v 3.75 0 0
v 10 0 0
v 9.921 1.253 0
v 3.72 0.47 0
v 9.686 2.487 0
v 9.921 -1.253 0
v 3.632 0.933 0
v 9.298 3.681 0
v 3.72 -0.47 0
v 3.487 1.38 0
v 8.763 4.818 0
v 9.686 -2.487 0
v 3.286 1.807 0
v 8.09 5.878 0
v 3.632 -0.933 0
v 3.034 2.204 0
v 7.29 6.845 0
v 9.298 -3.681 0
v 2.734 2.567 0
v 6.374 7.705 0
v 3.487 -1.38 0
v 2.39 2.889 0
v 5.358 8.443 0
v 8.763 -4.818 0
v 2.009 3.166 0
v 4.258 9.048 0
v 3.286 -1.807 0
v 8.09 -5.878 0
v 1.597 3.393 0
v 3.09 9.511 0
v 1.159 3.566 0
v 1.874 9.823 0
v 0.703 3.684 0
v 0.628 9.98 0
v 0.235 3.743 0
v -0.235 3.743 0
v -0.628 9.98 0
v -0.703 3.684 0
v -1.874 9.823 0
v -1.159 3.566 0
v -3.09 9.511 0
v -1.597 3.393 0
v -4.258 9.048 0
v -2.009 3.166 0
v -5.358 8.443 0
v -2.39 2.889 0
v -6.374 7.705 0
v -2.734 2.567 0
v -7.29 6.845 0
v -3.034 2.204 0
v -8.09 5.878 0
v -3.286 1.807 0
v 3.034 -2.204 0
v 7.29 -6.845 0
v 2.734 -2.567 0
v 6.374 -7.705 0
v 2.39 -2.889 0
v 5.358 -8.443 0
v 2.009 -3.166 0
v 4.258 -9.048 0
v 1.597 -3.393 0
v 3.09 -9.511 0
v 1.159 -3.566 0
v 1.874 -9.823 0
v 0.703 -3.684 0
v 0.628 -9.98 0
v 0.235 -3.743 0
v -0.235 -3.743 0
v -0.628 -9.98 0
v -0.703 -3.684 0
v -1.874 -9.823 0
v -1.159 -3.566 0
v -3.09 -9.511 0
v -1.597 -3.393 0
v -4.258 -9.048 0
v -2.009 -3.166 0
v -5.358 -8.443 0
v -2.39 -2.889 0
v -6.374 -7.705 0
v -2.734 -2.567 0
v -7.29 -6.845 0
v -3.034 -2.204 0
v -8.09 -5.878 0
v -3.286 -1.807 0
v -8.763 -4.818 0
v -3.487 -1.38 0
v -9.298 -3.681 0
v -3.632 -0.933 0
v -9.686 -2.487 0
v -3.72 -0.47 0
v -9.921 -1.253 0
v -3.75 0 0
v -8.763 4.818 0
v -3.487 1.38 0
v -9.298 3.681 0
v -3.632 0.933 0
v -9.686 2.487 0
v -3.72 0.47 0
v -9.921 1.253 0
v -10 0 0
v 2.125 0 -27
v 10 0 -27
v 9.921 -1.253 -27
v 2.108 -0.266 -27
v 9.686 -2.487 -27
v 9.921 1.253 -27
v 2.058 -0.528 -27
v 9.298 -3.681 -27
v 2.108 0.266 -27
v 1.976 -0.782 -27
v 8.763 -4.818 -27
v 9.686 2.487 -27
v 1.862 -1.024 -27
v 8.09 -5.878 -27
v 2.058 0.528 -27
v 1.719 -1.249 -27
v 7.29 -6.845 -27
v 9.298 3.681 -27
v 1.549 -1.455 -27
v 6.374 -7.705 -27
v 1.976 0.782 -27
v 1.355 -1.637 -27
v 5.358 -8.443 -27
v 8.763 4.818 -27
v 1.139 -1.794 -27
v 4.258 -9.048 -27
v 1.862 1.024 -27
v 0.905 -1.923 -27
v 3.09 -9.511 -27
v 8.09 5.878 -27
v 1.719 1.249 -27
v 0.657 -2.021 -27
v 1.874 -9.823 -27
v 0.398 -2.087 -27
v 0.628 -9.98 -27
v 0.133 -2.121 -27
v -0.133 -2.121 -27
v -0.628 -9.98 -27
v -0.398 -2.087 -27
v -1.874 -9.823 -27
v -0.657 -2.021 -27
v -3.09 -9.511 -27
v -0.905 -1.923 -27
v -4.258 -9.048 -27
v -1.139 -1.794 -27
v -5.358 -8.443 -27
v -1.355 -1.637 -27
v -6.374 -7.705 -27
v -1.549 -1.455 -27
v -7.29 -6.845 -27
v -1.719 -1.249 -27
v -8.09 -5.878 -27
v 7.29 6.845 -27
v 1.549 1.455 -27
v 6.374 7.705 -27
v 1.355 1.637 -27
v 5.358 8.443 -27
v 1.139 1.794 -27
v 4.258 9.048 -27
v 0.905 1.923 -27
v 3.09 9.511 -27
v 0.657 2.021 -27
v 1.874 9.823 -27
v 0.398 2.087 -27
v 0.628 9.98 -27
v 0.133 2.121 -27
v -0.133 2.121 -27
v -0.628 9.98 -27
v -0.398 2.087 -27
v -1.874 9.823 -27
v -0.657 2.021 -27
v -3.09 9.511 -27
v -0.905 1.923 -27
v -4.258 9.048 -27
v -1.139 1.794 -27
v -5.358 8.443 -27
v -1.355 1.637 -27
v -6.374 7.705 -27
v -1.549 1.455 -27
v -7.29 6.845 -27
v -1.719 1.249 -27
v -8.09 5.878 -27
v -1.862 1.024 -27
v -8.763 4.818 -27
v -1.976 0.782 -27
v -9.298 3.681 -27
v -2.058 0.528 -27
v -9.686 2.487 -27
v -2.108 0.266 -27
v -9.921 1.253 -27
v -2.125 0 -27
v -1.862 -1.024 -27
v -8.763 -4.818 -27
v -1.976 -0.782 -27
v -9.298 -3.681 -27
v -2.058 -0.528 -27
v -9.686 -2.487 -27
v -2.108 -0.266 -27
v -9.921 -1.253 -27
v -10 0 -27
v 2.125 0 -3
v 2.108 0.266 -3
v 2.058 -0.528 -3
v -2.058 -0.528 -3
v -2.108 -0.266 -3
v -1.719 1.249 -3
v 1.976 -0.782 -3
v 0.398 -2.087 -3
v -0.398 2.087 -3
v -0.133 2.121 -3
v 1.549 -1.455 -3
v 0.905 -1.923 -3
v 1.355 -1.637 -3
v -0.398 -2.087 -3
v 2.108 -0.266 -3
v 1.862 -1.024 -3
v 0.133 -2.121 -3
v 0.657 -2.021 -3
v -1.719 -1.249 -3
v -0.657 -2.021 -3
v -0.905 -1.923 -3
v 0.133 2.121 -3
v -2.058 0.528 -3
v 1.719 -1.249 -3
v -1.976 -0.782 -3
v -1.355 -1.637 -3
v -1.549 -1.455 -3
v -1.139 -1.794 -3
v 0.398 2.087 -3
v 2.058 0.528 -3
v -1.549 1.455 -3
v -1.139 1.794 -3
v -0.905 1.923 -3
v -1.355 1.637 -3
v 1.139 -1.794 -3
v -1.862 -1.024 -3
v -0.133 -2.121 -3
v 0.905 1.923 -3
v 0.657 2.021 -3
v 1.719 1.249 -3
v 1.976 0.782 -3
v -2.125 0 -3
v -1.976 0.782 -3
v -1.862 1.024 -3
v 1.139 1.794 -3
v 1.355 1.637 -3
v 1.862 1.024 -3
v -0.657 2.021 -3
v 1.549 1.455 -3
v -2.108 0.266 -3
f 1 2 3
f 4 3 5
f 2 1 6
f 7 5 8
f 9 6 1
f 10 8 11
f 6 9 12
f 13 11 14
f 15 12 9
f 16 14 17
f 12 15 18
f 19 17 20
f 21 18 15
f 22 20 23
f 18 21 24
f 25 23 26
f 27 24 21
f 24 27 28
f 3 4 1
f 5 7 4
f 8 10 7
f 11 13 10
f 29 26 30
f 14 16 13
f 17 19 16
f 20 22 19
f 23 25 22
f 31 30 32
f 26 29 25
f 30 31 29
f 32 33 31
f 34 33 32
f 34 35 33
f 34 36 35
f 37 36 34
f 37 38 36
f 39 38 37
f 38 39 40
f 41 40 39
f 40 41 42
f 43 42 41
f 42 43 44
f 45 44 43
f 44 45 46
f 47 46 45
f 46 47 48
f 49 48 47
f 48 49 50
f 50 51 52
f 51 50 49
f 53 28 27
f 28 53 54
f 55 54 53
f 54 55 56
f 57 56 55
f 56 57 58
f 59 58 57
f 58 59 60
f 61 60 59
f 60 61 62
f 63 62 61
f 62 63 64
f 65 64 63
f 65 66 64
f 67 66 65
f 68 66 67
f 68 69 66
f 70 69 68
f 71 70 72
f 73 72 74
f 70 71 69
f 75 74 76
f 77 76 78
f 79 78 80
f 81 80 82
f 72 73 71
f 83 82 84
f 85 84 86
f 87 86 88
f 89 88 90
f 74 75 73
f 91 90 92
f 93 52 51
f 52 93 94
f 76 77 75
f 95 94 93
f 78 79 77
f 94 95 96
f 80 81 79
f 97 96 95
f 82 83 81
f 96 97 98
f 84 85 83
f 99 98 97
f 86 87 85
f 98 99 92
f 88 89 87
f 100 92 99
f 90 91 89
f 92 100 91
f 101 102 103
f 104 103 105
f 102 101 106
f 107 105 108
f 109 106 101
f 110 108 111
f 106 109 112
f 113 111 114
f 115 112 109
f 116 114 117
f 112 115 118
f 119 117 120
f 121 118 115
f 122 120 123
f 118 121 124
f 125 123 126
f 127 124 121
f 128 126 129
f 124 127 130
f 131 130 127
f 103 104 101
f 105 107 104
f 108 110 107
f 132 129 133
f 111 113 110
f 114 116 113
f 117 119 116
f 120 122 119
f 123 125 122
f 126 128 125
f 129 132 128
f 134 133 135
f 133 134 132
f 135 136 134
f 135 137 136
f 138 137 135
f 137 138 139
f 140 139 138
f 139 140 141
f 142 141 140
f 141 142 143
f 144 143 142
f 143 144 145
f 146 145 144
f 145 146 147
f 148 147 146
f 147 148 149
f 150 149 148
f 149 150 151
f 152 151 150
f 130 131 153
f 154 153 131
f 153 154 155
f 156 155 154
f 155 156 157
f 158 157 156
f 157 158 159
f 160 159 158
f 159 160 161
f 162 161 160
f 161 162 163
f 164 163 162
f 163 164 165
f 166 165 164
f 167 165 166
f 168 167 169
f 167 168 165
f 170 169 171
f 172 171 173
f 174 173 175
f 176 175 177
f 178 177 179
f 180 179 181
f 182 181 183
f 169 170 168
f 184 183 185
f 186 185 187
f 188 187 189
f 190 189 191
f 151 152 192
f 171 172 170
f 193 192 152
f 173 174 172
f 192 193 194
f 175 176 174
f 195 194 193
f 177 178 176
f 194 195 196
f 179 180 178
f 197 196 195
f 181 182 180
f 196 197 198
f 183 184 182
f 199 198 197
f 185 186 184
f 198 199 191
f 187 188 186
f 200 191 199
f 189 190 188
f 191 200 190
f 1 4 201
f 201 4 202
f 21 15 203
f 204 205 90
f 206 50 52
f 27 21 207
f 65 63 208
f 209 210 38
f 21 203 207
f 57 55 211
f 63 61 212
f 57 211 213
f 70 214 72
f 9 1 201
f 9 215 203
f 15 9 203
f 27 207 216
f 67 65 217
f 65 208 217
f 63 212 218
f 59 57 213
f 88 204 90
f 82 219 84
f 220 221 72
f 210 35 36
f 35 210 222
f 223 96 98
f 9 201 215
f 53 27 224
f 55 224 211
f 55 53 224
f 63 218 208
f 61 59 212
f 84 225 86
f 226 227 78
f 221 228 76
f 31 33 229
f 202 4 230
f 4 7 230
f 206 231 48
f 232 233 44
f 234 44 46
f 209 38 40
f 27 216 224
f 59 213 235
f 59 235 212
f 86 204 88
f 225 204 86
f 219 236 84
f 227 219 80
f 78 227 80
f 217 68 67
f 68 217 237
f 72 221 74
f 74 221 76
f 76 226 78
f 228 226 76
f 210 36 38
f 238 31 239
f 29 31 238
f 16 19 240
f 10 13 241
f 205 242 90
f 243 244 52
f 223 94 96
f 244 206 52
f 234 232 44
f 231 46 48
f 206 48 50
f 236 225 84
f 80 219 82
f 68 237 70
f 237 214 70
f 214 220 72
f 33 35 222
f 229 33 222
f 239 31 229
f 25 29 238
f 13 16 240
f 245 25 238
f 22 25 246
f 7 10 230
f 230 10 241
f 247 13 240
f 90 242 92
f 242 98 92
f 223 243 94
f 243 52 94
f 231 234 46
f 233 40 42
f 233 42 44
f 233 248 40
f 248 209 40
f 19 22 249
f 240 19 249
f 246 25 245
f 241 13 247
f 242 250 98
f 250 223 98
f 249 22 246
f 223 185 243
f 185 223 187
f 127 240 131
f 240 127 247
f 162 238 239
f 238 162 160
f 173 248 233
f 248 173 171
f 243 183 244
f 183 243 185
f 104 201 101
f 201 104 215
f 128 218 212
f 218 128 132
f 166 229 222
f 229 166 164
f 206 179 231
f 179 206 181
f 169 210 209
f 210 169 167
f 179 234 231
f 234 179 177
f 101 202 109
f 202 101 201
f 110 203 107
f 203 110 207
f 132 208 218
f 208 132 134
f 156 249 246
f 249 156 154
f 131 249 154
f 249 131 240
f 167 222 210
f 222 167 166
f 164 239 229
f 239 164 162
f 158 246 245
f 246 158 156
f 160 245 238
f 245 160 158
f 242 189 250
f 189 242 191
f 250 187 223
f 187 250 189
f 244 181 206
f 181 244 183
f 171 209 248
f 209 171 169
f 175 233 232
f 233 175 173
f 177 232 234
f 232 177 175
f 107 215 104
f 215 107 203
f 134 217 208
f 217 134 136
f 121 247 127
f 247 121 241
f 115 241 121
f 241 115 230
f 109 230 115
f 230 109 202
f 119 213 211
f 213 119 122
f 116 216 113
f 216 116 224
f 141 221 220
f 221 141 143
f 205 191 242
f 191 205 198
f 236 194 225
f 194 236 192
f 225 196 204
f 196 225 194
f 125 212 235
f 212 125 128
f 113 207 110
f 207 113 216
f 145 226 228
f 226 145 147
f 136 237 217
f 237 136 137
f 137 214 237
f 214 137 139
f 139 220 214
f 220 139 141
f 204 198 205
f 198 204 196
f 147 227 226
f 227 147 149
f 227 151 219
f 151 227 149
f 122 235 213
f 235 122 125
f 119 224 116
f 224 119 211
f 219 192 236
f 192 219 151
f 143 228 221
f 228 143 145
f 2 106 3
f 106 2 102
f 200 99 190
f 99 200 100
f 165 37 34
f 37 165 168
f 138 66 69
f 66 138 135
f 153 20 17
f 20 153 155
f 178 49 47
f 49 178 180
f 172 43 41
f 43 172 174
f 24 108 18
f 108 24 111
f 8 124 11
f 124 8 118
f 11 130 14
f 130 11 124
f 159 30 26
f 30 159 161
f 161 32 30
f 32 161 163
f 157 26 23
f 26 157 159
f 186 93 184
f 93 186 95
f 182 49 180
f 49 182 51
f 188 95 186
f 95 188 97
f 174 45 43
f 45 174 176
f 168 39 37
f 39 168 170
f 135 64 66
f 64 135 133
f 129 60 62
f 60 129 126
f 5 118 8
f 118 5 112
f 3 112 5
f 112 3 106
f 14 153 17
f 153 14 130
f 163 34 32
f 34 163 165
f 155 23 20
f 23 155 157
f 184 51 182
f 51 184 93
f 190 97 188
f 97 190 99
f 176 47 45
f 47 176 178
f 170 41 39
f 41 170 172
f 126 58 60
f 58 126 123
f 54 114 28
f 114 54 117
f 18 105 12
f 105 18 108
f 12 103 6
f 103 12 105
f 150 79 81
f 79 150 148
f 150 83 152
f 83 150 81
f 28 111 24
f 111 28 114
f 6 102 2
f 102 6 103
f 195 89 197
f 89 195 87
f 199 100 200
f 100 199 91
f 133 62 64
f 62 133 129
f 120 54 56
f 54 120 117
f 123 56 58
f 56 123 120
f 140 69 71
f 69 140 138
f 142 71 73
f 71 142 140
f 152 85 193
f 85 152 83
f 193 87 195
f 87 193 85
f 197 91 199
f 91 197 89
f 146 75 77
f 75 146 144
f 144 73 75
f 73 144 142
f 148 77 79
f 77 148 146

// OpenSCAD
$fn = 50;


difference() {
	union() {
		translate(v = [0, 0, -27.0000000000]) {
			cylinder(h = 27, r = 10.0000000000);
		}
		cylinder(h = 0, r = 19.0000000000);
	}
	union() {
		translate(v = [0, 0, 0]) {
			rotate(a = [0, 0, 0]) {
				difference() {
					union() {
						#translate(v = [0, 0, -27.0000000000]) {
							cylinder(h = 27, r = 2.0000000000);
						}
						#translate(v = [0, 0, -3]) {
							cylinder(h = 3, r1 = 2.1250000000, r2 = 3.7500000000);
						}
						#translate(v = [0, 0, -27.0000000000]) {
							cylinder(h = 27, r = 2.1250000000);
						}
						#translate(v = [0, 0, -27.0000000000]) {
							cylinder(h = 27, r = 2.0000000000);
						}
					}
					union();
				}
			}
		}
	}
}
